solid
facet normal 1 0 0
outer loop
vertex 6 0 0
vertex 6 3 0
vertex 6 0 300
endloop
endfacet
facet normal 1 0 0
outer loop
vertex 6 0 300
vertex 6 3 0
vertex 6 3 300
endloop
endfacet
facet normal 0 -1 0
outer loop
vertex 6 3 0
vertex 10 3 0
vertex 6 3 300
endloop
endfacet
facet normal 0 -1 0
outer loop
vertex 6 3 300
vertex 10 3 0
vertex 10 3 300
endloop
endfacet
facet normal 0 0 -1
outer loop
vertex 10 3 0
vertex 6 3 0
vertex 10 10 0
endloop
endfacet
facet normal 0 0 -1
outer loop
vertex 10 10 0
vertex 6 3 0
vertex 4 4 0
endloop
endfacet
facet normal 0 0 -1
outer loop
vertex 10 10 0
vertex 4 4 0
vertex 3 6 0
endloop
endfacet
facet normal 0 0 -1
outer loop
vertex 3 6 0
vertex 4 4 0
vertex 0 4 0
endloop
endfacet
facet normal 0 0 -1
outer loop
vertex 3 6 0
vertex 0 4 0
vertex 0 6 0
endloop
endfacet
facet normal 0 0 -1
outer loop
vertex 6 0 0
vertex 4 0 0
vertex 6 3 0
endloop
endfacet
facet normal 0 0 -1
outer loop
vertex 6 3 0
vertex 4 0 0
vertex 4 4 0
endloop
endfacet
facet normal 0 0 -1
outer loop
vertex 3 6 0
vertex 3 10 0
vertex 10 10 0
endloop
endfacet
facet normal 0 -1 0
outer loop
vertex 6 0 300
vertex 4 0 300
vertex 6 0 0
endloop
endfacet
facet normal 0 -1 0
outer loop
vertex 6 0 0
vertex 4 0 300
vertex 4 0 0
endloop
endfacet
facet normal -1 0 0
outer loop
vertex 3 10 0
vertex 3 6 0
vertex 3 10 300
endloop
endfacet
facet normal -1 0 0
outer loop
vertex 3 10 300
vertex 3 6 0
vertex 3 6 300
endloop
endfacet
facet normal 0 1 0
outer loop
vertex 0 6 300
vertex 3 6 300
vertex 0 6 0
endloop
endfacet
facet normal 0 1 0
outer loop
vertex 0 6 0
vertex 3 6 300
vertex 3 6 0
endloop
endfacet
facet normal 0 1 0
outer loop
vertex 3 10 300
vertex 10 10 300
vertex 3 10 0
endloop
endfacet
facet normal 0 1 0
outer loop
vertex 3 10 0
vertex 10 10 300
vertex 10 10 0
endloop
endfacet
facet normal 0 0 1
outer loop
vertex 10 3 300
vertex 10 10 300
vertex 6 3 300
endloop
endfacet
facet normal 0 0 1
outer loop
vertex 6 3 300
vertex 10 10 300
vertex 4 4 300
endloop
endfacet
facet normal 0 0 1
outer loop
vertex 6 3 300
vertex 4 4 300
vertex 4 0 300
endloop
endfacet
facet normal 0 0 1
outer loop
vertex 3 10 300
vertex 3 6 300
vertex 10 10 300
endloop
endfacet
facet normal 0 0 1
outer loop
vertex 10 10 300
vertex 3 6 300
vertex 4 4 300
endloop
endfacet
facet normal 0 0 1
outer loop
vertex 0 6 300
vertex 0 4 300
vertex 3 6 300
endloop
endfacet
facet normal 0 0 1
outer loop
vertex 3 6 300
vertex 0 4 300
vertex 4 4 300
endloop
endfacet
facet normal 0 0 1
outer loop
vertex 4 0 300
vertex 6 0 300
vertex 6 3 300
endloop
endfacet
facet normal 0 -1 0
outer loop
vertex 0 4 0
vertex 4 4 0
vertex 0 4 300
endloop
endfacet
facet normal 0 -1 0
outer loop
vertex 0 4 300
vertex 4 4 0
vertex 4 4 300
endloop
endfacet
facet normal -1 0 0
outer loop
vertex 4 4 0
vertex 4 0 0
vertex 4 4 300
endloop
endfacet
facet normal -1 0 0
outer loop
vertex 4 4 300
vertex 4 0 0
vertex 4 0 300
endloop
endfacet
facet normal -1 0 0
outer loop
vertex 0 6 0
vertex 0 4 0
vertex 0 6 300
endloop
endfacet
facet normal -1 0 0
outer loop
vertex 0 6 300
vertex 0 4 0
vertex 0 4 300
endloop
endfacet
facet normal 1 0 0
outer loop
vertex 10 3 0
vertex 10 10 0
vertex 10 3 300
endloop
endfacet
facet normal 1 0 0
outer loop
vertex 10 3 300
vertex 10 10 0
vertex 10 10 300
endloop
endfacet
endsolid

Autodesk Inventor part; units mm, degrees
ref_plane "YZ Plane" through (0, 0, 0) normal (1, 0, 0) x (0, 1, 0)
ref_plane "XZ Plane" through (0, 0, 0) normal (0, 1, 0) x (-1, 0, 0)
sketch "Skizze1" plane through (0, 0, 0) normal (0, 0, 1) x (1, 0, 0)
  line L0 (0, 0) -> (10, 0)
  line L1 (10, 0) -> (10, 10)
  line L2 (10, 10) -> (0, 10)
  line L3 (0, 10) -> (0, 0)
extrude "Extrusion1" add sketch "Skizze1" along normal blind 300
sketch "Skizze2" plane through (0, 0, 0) normal (0, 0, 1) x (1, 0, 0)
  line L0 (0, 0) -> (4, 0)
  line L1 (4, 0) -> (4, 4)
  line L2 (4, 4) -> (0, 4)
  line L3 (0, 4) -> (0, 0)
extrude "Extrusion2" cut sketch "Skizze2" along normal blind 300
sketch "Skizze3" plane through (0, 0, 0) normal (0, 0, 1) x (1, 0, 0)
  line L0 (-3, 6) -> (3, 6)
  line L1 (3, 6) -> (3, 10)
  line L2 (3, 10) -> (-3, 10)
  line L3 (-3, 10) -> (-3, 6)
extrude "Extrusion3" cut sketch "Skizze3" along normal blind 300
sketch "Skizze4" plane through (0, 0, 0) normal (0, 0, 1) x (1, 0, 0)
  line L0 (-3, -10) -> (3, -10)
  line L1 (3, -10) -> (3, -6)
  line L2 (3, -6) -> (-3, -6)
  line L3 (-3, -6) -> (-3, -10)
extrude "Extrusion4" cut sketch "Skizze4" along normal blind 300
sketch "Skizze5" plane through (0, 0, 0) normal (0, 0, 1) x (1, 0, 0)
  line L0 (-10, -3) -> (-6, -3)
  line L1 (-6, -3) -> (-6, 3)
  line L2 (-6, 3) -> (-10, 3)
  line L3 (-10, 3) -> (-10, -3)
extrude "Extrusion5" cut sketch "Skizze5" along normal blind 300
sketch "Skizze6" plane through (0, 0, 0) normal (0, 0, 1) x (1, 0, 0)
  line L0 (6, -3) -> (10, -3)
  line L1 (10, -3) -> (10, 3)
  line L2 (10, 3) -> (6, 3)
  line L3 (6, 3) -> (6, -3)
extrude "Extrusion6" cut sketch "Skizze6" along normal blind 300
ref_plane "Arbeitsebene1" through (0, 0, 300) normal (0, 0, 1) x (1, 0, 0)
sketch "Skizze7" plane through (0, 0, 0) normal (0, 0, 1) x (1, 0, 0)
  circle A0 centre (0, 0) radius 2.5
extrude "Extrusion7" cut sketch "Skizze7" along normal blind 10
sketch "Skizze8" plane through (0, 0, 300) normal (0, 0, 1) x (1, 0, 0)
  circle A0 centre (0, 0) radius 2.5
extrude "Extrusion8" cut sketch "Skizze8" along normal blind 10
properties part number "Aluprofil_20x20_L300"
